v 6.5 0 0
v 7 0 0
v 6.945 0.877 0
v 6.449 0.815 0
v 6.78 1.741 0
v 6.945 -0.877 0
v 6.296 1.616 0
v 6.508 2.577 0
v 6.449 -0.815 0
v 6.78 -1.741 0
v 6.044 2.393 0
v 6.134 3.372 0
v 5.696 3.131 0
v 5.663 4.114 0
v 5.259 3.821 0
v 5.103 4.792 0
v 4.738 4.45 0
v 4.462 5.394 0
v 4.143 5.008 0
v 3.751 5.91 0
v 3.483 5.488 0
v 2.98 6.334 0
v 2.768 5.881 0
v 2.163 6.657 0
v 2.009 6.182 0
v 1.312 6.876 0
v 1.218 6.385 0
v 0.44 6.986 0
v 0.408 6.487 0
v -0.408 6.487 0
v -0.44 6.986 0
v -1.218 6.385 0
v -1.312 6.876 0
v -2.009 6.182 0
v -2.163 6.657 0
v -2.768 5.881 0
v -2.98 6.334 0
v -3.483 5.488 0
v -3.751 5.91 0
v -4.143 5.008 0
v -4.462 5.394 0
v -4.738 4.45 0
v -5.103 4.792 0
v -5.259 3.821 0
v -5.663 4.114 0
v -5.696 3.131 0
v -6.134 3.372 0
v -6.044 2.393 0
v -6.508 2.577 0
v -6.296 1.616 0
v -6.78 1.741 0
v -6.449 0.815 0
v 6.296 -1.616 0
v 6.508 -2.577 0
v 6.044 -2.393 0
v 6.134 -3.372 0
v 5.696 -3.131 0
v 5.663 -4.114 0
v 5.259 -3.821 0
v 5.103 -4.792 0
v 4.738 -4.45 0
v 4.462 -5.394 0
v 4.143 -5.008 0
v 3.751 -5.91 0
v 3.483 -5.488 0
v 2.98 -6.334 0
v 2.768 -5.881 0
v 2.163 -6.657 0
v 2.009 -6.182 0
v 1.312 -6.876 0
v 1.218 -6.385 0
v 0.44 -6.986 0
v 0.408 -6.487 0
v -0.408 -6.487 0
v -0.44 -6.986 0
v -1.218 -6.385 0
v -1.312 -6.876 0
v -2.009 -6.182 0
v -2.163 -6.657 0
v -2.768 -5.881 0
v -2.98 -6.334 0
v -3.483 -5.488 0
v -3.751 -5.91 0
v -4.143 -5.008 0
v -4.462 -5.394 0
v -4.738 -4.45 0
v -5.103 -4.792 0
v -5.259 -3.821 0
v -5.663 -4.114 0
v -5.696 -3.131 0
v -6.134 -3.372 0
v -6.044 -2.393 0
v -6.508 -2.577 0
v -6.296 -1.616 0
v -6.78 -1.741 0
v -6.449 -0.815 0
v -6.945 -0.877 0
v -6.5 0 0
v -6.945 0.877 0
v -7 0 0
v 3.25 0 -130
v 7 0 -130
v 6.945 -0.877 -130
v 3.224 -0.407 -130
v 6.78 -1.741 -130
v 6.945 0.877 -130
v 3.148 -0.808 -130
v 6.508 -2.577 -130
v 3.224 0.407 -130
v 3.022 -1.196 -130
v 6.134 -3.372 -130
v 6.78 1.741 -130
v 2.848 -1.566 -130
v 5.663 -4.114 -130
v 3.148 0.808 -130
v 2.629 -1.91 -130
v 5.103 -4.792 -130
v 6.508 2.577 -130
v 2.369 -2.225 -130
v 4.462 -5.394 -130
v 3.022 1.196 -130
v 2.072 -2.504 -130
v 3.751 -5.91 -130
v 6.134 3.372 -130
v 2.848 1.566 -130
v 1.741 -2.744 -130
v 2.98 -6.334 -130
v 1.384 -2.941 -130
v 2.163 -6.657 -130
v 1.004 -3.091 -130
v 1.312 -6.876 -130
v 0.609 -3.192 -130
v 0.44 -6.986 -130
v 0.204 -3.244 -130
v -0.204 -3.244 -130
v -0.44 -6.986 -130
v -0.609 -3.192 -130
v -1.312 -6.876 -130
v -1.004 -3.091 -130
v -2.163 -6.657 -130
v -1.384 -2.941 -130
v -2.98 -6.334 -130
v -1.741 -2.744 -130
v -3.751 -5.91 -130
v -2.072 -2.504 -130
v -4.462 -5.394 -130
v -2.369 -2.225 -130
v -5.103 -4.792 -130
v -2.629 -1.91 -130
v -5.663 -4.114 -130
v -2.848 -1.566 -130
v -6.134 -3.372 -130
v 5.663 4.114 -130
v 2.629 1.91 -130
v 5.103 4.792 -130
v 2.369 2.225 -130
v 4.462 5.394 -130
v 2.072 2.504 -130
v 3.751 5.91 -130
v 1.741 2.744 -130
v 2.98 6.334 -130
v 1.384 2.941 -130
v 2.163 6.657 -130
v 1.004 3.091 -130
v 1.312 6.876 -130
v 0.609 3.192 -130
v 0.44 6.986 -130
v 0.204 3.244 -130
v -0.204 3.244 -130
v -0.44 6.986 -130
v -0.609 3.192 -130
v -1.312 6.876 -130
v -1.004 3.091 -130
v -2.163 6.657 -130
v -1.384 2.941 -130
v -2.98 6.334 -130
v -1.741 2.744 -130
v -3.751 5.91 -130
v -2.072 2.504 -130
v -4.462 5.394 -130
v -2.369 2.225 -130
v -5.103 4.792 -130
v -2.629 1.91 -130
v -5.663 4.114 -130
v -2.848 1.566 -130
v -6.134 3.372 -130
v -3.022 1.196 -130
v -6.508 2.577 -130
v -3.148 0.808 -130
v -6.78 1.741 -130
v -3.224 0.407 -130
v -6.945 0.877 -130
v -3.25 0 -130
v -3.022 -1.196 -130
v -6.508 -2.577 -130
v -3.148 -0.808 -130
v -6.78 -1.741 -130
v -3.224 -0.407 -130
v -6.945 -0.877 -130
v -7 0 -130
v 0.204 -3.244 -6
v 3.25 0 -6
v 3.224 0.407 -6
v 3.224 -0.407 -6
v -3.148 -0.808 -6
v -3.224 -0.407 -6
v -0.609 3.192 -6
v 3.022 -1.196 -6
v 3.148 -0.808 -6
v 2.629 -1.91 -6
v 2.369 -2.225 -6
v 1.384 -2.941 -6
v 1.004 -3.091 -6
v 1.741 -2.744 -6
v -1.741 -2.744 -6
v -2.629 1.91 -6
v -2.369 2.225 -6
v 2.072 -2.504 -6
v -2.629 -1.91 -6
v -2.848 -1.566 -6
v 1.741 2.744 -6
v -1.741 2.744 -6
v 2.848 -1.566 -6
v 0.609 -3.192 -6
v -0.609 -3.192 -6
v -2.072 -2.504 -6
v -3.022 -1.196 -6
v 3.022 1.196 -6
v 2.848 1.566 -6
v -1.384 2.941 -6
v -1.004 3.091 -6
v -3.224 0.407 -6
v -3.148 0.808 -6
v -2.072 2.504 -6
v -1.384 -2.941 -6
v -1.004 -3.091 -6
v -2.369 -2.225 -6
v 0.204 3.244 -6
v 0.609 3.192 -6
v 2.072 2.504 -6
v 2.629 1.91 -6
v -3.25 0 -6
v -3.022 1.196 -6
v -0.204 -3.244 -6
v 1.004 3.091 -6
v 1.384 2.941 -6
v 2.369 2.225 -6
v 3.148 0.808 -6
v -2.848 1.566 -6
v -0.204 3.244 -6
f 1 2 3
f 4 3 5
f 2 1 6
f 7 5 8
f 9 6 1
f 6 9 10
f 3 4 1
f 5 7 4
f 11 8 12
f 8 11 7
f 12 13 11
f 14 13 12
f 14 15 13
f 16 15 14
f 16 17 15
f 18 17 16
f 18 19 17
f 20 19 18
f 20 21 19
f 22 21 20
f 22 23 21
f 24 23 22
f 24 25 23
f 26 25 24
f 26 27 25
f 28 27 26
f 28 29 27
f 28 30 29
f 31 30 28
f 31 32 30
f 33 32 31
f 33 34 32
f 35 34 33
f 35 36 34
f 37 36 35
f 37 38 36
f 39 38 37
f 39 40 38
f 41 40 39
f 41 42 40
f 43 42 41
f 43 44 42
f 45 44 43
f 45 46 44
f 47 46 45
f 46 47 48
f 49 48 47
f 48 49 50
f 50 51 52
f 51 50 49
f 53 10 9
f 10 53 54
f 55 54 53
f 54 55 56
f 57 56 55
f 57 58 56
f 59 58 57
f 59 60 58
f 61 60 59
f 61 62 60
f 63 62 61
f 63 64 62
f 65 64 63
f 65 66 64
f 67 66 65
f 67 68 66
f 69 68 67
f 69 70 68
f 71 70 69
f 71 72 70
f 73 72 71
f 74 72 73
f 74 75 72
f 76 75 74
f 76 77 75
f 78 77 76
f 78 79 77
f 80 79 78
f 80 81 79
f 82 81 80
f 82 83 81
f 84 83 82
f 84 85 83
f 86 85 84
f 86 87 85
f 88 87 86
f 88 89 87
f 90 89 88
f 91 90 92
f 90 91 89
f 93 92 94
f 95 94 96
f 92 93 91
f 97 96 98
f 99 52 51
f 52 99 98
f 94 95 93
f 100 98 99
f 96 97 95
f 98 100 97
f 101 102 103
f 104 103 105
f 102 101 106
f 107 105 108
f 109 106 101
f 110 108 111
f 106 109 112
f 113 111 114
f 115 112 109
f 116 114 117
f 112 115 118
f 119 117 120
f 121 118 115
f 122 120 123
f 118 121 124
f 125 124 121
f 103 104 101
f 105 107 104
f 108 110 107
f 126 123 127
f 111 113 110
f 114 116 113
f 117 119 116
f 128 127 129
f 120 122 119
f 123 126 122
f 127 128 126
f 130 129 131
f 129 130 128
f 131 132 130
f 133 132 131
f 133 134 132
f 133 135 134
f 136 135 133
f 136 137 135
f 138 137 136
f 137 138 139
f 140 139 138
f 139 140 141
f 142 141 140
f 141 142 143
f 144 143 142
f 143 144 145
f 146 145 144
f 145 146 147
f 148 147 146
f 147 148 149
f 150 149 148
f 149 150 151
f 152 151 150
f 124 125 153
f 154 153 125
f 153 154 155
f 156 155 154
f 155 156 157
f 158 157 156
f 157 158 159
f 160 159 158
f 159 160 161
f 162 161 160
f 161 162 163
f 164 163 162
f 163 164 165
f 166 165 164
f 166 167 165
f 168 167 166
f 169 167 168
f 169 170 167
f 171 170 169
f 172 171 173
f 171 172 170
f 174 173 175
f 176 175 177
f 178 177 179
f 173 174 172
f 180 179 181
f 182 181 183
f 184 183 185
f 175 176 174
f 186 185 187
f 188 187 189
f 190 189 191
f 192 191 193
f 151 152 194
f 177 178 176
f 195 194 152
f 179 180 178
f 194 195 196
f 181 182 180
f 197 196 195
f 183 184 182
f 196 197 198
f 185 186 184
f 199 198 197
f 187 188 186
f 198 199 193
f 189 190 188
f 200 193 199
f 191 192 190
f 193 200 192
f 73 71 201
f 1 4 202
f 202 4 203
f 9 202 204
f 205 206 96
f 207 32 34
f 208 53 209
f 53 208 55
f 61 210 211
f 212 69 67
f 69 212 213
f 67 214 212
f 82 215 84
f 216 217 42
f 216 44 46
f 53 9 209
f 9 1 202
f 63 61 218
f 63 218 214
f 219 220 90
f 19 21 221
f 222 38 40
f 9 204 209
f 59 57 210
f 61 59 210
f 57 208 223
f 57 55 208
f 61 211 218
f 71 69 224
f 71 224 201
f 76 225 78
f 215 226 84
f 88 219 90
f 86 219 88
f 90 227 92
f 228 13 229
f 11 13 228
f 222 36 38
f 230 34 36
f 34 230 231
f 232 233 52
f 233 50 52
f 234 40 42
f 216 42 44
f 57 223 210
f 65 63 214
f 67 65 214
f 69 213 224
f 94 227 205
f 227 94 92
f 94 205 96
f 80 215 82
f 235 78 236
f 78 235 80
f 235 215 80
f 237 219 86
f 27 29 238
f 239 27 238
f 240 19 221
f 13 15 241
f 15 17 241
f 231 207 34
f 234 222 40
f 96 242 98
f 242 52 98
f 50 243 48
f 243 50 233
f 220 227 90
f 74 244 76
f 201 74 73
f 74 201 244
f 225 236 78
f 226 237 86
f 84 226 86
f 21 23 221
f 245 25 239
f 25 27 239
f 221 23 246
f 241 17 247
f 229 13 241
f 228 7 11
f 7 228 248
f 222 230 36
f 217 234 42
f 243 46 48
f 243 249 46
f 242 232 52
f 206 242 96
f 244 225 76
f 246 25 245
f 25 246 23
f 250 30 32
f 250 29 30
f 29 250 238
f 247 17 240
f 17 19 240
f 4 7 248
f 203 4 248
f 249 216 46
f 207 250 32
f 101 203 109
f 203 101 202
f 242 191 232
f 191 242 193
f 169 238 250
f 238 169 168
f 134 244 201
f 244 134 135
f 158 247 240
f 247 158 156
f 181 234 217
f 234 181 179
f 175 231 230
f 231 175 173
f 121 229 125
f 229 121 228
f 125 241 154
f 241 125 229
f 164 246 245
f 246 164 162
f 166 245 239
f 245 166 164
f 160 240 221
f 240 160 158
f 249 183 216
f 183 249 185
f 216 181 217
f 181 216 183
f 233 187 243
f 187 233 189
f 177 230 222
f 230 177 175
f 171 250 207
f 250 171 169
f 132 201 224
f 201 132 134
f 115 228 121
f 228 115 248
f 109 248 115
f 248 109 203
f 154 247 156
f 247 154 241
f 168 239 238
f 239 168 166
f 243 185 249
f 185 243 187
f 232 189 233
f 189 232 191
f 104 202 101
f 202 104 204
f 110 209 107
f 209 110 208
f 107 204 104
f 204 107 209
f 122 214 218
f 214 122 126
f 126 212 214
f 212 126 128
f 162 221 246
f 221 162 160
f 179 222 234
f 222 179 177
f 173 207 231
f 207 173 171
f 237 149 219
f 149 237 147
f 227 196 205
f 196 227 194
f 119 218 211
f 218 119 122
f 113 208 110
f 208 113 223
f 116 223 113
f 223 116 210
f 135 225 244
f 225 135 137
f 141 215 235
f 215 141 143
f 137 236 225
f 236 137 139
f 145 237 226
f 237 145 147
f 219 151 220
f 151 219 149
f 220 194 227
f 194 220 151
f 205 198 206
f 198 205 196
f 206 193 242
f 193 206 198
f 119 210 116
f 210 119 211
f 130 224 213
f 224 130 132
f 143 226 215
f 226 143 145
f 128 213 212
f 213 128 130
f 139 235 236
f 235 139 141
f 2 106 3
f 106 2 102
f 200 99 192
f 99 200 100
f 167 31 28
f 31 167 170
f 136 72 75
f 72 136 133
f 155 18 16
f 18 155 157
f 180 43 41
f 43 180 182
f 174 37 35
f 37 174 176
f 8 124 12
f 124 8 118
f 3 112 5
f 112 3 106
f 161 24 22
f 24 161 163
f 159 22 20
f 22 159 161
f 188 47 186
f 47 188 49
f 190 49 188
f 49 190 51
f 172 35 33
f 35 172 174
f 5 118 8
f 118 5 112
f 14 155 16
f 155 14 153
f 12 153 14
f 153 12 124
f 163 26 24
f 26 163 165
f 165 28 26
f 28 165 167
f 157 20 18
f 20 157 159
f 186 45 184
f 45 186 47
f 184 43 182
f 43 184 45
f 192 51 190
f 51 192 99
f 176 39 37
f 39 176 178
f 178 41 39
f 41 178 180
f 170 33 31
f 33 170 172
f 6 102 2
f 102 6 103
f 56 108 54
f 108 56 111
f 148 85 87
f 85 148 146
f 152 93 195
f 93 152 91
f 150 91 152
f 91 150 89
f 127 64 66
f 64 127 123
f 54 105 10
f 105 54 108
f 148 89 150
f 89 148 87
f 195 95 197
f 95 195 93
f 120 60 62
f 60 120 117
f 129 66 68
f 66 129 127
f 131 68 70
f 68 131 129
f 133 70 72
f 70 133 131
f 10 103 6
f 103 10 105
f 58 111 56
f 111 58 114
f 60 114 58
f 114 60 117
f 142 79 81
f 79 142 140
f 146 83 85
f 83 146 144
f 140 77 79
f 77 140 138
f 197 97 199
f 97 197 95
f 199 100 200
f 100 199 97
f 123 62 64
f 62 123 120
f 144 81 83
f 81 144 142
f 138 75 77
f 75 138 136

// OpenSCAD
$fn = 50;


difference() {
	union() {
		translate(v = [0, 0, -130.0000000000]) {
			cylinder(h = 130, r = 7.0000000000);
		}
		cylinder(h = 0, r = 10.0000000000);
	}
	union() {
		translate(v = [0, 0, 0]) {
			rotate(a = [0, 0, 0]) {
				difference() {
					union() {
						#translate(v = [0, 0, -130.0000000000]) {
							cylinder(h = 130, r = 2.2500000000);
						}
						#translate(v = [0, 0, -6]) {
							cylinder(h = 6, r1 = 3.2500000000, r2 = 6.5000000000);
						}
						#translate(v = [0, 0, -130.0000000000]) {
							cylinder(h = 130, r = 3.2500000000);
						}
						#translate(v = [0, 0, -130.0000000000]) {
							cylinder(h = 130, r = 2.2500000000);
						}
					}
					union();
				}
			}
		}
	}
}
